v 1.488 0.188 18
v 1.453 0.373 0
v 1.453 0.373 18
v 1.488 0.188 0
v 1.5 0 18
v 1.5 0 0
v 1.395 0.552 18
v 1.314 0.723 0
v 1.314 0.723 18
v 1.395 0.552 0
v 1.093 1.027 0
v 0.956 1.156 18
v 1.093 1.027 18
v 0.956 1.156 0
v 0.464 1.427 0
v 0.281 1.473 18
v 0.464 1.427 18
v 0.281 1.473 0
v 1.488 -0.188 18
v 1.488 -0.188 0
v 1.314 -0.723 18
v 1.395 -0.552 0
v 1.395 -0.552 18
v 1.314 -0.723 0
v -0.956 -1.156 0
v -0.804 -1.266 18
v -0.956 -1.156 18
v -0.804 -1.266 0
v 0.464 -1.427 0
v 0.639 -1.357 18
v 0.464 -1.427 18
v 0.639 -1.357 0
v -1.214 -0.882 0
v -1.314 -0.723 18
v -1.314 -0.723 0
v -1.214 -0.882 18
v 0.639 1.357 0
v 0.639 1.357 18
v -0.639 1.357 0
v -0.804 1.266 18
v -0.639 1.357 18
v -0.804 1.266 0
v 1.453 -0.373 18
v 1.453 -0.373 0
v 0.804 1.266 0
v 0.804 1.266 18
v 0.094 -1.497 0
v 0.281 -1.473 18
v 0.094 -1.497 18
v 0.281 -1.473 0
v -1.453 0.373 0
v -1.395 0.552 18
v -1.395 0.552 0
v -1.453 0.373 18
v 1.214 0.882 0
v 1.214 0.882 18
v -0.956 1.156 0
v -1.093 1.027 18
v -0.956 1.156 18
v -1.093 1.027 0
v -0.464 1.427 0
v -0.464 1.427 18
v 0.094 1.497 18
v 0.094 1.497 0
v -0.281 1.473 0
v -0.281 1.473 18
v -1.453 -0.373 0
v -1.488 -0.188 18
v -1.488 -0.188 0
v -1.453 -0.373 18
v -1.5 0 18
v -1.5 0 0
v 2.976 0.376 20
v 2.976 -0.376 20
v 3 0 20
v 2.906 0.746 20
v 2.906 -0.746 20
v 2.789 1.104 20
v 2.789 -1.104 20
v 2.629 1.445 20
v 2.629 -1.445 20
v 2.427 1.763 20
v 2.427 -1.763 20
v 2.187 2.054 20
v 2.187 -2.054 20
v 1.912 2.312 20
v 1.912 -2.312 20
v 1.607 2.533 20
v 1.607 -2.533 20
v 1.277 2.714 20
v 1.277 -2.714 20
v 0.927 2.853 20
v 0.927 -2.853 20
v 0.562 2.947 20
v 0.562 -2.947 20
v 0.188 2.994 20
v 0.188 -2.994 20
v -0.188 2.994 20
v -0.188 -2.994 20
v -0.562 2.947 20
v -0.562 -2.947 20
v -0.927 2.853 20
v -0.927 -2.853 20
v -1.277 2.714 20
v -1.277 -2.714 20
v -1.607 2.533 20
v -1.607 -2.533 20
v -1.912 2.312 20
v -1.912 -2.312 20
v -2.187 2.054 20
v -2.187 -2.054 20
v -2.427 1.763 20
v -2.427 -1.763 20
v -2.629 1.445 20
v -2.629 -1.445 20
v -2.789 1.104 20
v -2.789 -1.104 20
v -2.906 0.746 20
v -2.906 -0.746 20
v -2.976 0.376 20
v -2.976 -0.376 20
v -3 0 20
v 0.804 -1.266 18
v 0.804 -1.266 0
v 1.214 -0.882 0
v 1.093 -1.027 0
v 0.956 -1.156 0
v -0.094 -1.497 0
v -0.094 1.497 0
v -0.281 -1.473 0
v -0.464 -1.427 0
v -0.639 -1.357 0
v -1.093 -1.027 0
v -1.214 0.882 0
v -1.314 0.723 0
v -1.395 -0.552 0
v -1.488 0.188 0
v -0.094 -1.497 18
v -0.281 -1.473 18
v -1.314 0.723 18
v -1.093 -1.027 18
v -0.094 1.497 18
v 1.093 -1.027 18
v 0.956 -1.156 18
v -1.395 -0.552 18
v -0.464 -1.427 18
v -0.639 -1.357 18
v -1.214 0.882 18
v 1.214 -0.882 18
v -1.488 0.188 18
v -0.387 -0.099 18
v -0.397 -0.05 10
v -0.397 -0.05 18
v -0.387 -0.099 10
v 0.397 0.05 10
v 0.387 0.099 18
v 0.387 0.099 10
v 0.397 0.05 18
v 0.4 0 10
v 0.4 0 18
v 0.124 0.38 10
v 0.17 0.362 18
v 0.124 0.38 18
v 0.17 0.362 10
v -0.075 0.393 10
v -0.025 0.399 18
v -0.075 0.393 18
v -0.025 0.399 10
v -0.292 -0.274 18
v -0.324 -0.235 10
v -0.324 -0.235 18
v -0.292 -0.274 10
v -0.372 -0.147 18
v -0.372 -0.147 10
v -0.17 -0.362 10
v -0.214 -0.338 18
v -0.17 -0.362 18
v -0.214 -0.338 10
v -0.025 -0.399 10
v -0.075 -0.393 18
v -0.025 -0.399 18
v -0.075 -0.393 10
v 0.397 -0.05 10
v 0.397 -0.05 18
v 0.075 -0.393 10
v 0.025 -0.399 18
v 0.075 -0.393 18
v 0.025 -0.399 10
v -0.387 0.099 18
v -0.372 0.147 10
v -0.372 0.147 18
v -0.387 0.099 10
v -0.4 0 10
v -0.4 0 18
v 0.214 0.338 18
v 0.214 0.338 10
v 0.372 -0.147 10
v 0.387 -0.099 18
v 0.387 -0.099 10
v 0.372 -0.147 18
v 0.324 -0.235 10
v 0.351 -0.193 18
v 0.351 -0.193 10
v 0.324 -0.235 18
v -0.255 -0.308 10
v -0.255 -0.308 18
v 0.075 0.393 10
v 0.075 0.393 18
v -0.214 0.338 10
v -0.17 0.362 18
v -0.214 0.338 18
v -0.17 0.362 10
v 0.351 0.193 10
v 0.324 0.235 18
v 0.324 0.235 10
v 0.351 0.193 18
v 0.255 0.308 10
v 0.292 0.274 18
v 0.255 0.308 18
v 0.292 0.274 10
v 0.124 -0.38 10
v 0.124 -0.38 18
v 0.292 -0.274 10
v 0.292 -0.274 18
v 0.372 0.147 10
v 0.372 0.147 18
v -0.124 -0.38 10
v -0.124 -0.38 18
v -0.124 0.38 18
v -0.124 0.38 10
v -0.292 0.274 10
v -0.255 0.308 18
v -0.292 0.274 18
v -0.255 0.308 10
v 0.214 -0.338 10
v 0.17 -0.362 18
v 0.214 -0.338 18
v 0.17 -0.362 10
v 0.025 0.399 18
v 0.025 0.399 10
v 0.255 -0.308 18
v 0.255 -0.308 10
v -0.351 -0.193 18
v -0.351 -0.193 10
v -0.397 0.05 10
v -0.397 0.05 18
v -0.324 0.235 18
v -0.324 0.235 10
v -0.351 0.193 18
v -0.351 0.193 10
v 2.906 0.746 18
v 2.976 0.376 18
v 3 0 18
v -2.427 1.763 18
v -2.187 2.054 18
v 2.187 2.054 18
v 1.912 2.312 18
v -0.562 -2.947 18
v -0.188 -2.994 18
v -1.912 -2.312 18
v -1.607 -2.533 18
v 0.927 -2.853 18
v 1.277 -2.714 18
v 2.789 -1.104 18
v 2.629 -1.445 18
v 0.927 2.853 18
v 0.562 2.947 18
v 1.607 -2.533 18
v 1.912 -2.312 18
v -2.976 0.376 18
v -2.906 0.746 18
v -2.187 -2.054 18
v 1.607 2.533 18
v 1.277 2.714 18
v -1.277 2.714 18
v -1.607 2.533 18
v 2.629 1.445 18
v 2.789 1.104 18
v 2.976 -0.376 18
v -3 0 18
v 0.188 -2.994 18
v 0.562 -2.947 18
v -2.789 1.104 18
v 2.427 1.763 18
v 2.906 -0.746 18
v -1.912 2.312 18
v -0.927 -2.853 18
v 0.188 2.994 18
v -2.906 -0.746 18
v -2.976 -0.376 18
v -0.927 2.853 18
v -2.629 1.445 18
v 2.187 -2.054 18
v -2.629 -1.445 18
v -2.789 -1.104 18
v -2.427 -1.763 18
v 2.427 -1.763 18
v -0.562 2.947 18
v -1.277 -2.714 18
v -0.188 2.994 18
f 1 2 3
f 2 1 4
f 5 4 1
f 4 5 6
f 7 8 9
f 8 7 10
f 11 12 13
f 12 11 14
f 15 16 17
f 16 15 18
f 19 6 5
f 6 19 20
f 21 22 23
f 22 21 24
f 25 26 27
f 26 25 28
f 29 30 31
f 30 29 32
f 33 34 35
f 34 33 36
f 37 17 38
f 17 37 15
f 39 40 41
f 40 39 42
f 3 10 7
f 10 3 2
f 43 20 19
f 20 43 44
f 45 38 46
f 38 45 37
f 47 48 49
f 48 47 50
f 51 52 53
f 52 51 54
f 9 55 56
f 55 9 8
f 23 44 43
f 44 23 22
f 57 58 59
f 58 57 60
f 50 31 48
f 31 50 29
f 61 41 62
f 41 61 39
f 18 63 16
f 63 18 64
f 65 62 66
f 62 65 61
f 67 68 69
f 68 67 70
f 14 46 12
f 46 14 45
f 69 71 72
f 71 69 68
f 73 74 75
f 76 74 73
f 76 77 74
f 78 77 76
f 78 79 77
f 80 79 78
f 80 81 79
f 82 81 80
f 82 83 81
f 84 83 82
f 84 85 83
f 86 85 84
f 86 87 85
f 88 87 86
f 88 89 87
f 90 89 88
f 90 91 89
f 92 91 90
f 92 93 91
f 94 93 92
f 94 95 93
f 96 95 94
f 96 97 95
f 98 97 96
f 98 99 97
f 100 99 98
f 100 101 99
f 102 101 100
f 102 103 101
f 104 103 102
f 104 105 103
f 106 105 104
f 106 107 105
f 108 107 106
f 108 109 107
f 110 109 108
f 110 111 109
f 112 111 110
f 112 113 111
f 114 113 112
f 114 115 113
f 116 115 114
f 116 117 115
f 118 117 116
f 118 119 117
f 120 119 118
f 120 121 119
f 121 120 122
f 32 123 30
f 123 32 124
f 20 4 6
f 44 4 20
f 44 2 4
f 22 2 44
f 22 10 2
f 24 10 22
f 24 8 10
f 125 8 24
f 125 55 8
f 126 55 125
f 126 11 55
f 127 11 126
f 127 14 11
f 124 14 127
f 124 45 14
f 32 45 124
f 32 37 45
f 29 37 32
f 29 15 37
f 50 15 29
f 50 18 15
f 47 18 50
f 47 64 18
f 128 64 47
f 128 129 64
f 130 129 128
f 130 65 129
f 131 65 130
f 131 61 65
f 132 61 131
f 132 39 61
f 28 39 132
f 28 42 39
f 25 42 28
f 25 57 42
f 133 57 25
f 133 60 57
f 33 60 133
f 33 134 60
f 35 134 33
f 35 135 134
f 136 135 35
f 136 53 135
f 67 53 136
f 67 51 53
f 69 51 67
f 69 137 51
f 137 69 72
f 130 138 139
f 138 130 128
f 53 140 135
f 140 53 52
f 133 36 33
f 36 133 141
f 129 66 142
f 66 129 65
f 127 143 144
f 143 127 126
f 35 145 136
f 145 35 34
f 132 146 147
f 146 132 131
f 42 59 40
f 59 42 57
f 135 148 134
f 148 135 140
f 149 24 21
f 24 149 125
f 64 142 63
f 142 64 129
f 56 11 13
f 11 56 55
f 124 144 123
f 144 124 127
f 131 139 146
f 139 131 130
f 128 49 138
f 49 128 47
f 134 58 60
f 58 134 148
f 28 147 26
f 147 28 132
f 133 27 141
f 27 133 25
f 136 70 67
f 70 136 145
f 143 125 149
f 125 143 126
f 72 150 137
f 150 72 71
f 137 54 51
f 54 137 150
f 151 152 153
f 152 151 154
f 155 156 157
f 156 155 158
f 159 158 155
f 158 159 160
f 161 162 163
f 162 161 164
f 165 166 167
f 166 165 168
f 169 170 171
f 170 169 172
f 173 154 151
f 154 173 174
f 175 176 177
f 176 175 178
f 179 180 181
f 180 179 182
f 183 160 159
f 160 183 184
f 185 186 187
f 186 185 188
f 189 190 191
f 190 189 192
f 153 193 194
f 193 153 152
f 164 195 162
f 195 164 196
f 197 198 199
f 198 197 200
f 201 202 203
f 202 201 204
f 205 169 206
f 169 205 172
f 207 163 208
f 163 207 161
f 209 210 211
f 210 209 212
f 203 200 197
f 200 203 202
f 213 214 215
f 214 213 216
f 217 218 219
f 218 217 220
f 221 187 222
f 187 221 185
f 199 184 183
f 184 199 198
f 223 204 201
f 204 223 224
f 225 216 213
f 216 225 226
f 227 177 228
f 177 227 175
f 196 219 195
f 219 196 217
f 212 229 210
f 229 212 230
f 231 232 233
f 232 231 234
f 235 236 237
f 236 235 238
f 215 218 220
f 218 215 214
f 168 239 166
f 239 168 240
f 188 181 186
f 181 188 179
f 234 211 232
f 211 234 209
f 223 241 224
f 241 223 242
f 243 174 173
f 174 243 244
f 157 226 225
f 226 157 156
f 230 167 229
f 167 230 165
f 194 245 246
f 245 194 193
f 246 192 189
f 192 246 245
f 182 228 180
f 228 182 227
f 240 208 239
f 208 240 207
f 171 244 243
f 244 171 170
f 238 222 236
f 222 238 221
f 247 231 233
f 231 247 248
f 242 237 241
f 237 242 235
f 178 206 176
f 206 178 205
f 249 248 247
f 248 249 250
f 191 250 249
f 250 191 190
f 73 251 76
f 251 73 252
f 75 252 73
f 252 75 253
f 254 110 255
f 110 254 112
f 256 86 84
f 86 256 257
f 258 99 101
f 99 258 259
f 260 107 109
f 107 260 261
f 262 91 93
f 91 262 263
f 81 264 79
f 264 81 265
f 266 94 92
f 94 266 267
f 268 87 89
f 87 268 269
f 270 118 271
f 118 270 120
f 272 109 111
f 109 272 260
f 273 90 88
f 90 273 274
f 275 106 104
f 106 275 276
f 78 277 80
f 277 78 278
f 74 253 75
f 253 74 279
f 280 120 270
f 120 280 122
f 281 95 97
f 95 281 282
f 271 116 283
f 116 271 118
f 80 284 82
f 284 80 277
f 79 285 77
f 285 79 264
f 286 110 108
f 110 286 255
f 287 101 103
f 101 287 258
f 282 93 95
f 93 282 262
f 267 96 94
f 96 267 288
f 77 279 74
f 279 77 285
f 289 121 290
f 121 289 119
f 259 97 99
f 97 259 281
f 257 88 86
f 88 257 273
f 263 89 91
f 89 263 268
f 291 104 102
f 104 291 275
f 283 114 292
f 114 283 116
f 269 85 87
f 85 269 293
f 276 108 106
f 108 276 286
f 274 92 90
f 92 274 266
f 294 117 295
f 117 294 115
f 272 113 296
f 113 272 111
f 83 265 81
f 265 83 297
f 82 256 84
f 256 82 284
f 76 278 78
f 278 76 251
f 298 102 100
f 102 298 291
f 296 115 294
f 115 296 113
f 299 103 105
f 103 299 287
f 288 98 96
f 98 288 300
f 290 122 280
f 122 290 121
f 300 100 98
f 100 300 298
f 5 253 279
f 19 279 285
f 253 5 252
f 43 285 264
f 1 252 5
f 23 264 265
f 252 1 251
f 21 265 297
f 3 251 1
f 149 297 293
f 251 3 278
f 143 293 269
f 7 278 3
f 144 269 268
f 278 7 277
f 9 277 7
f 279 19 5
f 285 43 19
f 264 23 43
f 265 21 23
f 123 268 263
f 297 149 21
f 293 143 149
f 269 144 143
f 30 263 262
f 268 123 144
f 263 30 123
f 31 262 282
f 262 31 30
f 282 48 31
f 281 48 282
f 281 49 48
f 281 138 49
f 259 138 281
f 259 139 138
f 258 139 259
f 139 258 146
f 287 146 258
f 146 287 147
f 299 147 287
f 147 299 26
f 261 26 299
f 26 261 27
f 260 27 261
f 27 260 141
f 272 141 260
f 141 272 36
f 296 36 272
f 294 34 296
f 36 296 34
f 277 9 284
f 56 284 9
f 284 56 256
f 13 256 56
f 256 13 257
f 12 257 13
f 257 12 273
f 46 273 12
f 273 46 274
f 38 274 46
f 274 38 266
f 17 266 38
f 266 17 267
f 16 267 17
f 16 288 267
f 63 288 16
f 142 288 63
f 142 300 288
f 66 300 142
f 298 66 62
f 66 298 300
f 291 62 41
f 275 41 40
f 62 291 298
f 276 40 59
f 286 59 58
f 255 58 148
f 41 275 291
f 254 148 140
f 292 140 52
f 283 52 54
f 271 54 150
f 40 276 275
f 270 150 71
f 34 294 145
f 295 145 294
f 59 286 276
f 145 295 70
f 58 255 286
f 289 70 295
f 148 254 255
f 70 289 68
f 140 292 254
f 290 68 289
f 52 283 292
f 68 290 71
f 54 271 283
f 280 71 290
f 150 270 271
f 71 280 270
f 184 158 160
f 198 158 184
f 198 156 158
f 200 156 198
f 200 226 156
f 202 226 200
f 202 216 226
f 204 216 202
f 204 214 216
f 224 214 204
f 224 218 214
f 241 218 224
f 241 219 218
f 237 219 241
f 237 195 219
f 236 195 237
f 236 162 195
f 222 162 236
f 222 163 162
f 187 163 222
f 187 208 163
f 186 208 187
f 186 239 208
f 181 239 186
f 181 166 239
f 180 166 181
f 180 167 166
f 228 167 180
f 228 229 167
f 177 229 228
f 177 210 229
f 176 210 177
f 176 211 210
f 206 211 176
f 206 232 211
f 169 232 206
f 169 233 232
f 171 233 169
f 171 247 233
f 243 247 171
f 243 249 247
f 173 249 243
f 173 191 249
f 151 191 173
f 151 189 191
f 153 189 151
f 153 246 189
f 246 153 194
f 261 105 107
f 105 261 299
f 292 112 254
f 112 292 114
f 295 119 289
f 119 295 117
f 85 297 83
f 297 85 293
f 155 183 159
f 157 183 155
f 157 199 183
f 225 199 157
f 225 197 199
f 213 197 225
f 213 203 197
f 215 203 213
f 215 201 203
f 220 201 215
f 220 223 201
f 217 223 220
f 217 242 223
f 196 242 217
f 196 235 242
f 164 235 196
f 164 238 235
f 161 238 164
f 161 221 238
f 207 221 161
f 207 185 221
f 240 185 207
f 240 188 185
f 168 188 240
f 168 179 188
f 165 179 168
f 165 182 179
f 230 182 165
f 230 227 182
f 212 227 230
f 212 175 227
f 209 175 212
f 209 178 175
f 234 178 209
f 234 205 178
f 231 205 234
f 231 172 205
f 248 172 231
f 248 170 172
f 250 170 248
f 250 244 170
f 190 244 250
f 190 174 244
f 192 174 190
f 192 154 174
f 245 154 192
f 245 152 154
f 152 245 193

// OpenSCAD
// Parameters
drill_diameter = 3;
drill_height = 20;
wall_thickness = 0.5;
head_diameter = 6;
head_height = 2;
shank_diameter = 0.8;
shank_height = 10;

// Main body
difference() {
  cylinder(h = drill_height, r = drill_diameter / 2, $fn = 50);
  translate([0,0,-0.1])
  cylinder(h = drill_height + 0.2, r = shank_diameter / 2, $fn = 50);
}

// Head
translate([0,0,drill_height - head_height])
cylinder(h = head_height, r = head_diameter / 2, $fn = 50);

//shank
cylinder(h = shank_height, r = shank_diameter / 2, $fn = 50);
